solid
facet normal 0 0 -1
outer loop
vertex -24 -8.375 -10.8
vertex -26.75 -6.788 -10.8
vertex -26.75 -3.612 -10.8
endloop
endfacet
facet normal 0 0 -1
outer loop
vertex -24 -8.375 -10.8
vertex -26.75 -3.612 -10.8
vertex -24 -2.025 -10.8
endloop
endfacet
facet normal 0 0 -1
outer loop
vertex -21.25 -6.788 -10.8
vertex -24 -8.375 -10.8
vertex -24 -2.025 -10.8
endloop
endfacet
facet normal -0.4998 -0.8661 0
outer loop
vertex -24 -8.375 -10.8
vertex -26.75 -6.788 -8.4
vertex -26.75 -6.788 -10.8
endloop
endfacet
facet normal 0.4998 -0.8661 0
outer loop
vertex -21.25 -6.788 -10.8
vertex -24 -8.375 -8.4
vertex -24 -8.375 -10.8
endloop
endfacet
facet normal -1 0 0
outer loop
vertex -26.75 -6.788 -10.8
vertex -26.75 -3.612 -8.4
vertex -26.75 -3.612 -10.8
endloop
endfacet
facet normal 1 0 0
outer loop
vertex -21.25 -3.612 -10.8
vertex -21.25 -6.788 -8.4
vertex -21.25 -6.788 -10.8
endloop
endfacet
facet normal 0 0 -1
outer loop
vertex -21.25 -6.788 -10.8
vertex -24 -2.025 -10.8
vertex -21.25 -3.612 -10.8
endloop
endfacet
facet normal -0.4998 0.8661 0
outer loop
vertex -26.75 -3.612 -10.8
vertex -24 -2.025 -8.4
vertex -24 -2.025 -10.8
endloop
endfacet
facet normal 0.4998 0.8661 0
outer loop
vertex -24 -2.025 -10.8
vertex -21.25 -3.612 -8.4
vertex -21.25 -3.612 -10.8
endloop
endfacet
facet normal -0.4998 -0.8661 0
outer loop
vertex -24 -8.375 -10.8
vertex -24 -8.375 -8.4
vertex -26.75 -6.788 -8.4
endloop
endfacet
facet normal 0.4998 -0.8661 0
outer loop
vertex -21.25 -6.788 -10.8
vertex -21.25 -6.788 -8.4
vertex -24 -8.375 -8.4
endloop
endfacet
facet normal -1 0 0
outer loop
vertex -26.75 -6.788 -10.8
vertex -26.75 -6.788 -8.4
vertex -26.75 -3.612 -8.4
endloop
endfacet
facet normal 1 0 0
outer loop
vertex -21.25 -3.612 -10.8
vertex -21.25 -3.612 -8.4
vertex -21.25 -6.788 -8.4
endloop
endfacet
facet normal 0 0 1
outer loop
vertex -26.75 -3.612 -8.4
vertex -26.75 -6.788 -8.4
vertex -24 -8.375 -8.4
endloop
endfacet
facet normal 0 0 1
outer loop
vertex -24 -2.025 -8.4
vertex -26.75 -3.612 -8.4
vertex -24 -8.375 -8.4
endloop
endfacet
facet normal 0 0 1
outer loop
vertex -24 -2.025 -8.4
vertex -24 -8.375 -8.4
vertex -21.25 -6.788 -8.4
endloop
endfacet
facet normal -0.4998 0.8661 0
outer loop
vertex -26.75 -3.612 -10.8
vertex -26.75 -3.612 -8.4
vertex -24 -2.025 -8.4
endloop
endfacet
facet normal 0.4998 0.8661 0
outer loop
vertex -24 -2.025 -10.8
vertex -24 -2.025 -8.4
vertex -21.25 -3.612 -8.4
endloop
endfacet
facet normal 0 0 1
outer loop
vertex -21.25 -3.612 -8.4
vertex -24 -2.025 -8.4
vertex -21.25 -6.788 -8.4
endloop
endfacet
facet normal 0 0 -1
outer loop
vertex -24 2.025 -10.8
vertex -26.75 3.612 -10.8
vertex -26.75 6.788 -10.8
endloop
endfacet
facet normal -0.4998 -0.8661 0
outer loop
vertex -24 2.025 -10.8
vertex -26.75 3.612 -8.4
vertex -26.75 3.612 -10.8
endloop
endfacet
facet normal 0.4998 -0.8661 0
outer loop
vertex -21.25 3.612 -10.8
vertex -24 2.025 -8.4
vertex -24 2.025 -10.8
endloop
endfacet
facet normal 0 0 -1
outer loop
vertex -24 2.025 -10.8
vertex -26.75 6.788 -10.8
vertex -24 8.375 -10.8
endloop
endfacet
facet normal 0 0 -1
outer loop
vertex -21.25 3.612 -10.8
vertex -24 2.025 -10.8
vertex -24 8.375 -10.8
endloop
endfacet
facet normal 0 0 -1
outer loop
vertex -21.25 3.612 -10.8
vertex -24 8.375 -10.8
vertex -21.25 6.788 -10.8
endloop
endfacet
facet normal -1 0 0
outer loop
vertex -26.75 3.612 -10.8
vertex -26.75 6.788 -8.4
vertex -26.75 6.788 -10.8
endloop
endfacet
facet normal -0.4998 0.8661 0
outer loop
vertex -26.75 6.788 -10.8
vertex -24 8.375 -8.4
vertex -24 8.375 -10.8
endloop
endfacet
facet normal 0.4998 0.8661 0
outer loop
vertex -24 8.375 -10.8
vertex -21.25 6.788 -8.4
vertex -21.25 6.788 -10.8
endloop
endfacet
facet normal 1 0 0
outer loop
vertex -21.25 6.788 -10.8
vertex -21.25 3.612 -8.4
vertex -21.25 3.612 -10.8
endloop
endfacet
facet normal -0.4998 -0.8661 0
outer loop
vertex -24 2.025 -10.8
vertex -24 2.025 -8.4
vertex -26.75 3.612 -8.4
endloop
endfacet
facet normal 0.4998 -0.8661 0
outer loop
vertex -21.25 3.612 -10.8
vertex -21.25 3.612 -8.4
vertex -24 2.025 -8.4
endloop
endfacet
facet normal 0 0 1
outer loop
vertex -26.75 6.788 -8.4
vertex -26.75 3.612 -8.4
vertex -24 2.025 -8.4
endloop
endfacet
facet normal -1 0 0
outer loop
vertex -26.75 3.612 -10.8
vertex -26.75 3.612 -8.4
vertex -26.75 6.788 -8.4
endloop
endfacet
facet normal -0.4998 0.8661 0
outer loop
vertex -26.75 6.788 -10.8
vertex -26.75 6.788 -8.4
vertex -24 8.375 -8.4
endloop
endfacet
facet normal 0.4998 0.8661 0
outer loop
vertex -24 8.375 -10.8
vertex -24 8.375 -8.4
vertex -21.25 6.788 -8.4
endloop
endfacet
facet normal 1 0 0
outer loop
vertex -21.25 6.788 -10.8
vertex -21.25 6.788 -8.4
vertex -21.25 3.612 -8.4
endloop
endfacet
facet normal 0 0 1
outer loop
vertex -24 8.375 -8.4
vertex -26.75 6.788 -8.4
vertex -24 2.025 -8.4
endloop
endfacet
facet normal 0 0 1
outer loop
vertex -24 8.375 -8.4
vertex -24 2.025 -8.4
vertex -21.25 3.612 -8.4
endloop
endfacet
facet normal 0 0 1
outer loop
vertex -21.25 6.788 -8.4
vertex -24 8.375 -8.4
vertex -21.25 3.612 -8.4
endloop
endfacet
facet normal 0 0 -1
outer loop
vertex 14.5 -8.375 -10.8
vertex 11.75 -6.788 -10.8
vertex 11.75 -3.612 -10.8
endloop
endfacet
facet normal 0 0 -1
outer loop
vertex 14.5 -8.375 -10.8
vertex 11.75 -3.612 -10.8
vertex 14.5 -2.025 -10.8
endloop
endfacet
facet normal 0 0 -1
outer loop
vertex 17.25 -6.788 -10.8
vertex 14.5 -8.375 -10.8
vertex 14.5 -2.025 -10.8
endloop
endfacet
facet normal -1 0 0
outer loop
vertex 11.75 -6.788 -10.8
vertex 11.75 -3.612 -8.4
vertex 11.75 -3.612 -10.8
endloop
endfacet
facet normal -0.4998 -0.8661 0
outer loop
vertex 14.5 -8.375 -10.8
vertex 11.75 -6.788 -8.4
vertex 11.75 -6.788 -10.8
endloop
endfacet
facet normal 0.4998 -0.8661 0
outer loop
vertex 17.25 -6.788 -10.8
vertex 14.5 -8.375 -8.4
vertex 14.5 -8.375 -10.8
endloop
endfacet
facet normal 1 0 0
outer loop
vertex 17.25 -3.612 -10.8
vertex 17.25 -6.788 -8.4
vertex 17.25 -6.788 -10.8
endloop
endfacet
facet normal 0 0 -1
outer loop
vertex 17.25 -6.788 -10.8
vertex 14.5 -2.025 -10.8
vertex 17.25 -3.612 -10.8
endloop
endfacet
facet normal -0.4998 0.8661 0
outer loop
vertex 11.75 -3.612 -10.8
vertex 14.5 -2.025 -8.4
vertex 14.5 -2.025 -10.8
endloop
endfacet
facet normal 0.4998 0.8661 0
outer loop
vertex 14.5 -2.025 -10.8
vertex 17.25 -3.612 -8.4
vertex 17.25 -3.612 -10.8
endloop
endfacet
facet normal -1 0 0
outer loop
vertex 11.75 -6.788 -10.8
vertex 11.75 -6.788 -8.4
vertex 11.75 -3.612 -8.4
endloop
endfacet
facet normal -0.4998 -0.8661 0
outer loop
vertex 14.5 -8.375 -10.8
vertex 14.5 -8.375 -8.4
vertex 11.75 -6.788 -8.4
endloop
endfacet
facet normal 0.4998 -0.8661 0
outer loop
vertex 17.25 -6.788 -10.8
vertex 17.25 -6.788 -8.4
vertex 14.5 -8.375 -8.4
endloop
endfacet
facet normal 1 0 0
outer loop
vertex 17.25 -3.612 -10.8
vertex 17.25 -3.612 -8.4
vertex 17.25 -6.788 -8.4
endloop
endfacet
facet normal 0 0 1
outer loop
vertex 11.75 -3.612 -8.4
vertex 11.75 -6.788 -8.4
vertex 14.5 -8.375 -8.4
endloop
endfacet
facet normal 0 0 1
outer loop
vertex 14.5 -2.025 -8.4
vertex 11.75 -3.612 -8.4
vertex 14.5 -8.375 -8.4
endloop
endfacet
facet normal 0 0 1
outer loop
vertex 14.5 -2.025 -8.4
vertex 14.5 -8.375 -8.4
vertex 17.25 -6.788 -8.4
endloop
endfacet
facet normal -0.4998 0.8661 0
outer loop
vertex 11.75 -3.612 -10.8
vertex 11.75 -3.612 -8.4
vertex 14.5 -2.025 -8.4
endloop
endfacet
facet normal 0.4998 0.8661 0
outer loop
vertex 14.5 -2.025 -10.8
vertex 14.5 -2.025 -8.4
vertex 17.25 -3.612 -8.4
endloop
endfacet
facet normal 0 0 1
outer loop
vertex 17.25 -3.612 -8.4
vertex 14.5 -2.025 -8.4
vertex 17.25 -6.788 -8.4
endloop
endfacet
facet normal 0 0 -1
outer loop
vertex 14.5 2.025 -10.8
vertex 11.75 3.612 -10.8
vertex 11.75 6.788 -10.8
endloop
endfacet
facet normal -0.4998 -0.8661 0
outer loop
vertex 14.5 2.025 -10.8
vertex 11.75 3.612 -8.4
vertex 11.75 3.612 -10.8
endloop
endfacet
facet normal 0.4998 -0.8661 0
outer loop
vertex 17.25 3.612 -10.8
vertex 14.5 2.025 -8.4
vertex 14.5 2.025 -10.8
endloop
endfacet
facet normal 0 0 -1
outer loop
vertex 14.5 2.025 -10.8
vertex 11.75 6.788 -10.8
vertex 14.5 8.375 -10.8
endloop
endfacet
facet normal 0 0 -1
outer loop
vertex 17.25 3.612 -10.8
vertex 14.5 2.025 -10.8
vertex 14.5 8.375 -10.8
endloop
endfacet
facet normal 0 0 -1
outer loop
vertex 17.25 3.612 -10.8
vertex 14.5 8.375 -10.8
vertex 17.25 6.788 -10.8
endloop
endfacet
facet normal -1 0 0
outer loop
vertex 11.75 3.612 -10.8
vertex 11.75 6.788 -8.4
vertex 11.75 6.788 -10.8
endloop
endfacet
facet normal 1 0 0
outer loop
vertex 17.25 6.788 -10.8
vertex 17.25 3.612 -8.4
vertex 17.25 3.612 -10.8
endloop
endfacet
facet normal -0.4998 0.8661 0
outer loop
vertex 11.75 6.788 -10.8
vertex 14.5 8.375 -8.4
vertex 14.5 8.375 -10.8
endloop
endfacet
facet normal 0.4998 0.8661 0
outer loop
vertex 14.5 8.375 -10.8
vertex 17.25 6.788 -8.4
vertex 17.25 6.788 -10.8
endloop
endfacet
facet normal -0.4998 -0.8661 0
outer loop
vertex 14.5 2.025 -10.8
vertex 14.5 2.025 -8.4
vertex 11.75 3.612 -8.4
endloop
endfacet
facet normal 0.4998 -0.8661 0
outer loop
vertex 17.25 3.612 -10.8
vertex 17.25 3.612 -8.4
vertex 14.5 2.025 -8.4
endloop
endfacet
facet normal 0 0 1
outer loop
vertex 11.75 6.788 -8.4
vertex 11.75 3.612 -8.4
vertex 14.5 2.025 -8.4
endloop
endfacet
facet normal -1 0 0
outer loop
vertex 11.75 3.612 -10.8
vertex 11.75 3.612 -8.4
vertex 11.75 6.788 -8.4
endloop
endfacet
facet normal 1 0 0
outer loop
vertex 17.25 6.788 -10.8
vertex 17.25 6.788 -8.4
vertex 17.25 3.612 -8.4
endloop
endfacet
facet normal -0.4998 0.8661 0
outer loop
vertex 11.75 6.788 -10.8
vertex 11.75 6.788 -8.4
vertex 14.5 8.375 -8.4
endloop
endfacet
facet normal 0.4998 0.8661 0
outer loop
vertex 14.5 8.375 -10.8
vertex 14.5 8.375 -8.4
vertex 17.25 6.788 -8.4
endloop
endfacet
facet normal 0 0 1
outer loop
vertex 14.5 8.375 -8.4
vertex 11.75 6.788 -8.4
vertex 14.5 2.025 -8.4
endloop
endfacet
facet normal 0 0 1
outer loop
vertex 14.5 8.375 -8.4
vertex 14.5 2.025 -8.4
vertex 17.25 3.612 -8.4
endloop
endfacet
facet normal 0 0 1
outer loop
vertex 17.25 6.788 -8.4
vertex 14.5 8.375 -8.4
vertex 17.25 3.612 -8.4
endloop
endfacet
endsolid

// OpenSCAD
$fn = 50;

difference() {
	union() {
		translate(v = [-24, -5.2, -10.8]) {
			rotate(a = [0, 0, 30]) {
				linear_extrude(height = 2.4) {
					polygon(points = [[3.1754264805429417, 0.0], [1.5877132402714713, 2.75], [-1.5877132402714702, 2.7500000000000004], [-3.1754264805429417, 3.888775875324659e-16], [-1.5877132402714722, -2.7499999999999996], [1.5877132402714687, -2.7500000000000013]]);
				}
			}
		}
		translate(v = [-24, 5.2, -10.8]) {
			rotate(a = [0, 0, 30]) {
				linear_extrude(height = 2.4) {
					polygon(points = [[3.1754264805429417, 0.0], [1.5877132402714713, 2.75], [-1.5877132402714702, 2.7500000000000004], [-3.1754264805429417, 3.888775875324659e-16], [-1.5877132402714722, -2.7499999999999996], [1.5877132402714687, -2.7500000000000013]]);
				}
			}
		}
		translate(v = [14.5, -5.2, -10.8]) {
			rotate(a = [0, 0, 30]) {
				linear_extrude(height = 2.4) {
					polygon(points = [[3.1754264805429417, 0.0], [1.5877132402714713, 2.75], [-1.5877132402714702, 2.7500000000000004], [-3.1754264805429417, 3.888775875324659e-16], [-1.5877132402714722, -2.7499999999999996], [1.5877132402714687, -2.7500000000000013]]);
				}
			}
		}
		translate(v = [14.5, 5.2, -10.8]) {
			rotate(a = [0, 0, 30]) {
				linear_extrude(height = 2.4) {
					polygon(points = [[3.1754264805429417, 0.0], [1.5877132402714713, 2.75], [-1.5877132402714702, 2.7500000000000004], [-3.1754264805429417, 3.888775875324659e-16], [-1.5877132402714722, -2.7499999999999996], [1.5877132402714687, -2.7500000000000013]]);
				}
			}
		}
	}
	union();
}
